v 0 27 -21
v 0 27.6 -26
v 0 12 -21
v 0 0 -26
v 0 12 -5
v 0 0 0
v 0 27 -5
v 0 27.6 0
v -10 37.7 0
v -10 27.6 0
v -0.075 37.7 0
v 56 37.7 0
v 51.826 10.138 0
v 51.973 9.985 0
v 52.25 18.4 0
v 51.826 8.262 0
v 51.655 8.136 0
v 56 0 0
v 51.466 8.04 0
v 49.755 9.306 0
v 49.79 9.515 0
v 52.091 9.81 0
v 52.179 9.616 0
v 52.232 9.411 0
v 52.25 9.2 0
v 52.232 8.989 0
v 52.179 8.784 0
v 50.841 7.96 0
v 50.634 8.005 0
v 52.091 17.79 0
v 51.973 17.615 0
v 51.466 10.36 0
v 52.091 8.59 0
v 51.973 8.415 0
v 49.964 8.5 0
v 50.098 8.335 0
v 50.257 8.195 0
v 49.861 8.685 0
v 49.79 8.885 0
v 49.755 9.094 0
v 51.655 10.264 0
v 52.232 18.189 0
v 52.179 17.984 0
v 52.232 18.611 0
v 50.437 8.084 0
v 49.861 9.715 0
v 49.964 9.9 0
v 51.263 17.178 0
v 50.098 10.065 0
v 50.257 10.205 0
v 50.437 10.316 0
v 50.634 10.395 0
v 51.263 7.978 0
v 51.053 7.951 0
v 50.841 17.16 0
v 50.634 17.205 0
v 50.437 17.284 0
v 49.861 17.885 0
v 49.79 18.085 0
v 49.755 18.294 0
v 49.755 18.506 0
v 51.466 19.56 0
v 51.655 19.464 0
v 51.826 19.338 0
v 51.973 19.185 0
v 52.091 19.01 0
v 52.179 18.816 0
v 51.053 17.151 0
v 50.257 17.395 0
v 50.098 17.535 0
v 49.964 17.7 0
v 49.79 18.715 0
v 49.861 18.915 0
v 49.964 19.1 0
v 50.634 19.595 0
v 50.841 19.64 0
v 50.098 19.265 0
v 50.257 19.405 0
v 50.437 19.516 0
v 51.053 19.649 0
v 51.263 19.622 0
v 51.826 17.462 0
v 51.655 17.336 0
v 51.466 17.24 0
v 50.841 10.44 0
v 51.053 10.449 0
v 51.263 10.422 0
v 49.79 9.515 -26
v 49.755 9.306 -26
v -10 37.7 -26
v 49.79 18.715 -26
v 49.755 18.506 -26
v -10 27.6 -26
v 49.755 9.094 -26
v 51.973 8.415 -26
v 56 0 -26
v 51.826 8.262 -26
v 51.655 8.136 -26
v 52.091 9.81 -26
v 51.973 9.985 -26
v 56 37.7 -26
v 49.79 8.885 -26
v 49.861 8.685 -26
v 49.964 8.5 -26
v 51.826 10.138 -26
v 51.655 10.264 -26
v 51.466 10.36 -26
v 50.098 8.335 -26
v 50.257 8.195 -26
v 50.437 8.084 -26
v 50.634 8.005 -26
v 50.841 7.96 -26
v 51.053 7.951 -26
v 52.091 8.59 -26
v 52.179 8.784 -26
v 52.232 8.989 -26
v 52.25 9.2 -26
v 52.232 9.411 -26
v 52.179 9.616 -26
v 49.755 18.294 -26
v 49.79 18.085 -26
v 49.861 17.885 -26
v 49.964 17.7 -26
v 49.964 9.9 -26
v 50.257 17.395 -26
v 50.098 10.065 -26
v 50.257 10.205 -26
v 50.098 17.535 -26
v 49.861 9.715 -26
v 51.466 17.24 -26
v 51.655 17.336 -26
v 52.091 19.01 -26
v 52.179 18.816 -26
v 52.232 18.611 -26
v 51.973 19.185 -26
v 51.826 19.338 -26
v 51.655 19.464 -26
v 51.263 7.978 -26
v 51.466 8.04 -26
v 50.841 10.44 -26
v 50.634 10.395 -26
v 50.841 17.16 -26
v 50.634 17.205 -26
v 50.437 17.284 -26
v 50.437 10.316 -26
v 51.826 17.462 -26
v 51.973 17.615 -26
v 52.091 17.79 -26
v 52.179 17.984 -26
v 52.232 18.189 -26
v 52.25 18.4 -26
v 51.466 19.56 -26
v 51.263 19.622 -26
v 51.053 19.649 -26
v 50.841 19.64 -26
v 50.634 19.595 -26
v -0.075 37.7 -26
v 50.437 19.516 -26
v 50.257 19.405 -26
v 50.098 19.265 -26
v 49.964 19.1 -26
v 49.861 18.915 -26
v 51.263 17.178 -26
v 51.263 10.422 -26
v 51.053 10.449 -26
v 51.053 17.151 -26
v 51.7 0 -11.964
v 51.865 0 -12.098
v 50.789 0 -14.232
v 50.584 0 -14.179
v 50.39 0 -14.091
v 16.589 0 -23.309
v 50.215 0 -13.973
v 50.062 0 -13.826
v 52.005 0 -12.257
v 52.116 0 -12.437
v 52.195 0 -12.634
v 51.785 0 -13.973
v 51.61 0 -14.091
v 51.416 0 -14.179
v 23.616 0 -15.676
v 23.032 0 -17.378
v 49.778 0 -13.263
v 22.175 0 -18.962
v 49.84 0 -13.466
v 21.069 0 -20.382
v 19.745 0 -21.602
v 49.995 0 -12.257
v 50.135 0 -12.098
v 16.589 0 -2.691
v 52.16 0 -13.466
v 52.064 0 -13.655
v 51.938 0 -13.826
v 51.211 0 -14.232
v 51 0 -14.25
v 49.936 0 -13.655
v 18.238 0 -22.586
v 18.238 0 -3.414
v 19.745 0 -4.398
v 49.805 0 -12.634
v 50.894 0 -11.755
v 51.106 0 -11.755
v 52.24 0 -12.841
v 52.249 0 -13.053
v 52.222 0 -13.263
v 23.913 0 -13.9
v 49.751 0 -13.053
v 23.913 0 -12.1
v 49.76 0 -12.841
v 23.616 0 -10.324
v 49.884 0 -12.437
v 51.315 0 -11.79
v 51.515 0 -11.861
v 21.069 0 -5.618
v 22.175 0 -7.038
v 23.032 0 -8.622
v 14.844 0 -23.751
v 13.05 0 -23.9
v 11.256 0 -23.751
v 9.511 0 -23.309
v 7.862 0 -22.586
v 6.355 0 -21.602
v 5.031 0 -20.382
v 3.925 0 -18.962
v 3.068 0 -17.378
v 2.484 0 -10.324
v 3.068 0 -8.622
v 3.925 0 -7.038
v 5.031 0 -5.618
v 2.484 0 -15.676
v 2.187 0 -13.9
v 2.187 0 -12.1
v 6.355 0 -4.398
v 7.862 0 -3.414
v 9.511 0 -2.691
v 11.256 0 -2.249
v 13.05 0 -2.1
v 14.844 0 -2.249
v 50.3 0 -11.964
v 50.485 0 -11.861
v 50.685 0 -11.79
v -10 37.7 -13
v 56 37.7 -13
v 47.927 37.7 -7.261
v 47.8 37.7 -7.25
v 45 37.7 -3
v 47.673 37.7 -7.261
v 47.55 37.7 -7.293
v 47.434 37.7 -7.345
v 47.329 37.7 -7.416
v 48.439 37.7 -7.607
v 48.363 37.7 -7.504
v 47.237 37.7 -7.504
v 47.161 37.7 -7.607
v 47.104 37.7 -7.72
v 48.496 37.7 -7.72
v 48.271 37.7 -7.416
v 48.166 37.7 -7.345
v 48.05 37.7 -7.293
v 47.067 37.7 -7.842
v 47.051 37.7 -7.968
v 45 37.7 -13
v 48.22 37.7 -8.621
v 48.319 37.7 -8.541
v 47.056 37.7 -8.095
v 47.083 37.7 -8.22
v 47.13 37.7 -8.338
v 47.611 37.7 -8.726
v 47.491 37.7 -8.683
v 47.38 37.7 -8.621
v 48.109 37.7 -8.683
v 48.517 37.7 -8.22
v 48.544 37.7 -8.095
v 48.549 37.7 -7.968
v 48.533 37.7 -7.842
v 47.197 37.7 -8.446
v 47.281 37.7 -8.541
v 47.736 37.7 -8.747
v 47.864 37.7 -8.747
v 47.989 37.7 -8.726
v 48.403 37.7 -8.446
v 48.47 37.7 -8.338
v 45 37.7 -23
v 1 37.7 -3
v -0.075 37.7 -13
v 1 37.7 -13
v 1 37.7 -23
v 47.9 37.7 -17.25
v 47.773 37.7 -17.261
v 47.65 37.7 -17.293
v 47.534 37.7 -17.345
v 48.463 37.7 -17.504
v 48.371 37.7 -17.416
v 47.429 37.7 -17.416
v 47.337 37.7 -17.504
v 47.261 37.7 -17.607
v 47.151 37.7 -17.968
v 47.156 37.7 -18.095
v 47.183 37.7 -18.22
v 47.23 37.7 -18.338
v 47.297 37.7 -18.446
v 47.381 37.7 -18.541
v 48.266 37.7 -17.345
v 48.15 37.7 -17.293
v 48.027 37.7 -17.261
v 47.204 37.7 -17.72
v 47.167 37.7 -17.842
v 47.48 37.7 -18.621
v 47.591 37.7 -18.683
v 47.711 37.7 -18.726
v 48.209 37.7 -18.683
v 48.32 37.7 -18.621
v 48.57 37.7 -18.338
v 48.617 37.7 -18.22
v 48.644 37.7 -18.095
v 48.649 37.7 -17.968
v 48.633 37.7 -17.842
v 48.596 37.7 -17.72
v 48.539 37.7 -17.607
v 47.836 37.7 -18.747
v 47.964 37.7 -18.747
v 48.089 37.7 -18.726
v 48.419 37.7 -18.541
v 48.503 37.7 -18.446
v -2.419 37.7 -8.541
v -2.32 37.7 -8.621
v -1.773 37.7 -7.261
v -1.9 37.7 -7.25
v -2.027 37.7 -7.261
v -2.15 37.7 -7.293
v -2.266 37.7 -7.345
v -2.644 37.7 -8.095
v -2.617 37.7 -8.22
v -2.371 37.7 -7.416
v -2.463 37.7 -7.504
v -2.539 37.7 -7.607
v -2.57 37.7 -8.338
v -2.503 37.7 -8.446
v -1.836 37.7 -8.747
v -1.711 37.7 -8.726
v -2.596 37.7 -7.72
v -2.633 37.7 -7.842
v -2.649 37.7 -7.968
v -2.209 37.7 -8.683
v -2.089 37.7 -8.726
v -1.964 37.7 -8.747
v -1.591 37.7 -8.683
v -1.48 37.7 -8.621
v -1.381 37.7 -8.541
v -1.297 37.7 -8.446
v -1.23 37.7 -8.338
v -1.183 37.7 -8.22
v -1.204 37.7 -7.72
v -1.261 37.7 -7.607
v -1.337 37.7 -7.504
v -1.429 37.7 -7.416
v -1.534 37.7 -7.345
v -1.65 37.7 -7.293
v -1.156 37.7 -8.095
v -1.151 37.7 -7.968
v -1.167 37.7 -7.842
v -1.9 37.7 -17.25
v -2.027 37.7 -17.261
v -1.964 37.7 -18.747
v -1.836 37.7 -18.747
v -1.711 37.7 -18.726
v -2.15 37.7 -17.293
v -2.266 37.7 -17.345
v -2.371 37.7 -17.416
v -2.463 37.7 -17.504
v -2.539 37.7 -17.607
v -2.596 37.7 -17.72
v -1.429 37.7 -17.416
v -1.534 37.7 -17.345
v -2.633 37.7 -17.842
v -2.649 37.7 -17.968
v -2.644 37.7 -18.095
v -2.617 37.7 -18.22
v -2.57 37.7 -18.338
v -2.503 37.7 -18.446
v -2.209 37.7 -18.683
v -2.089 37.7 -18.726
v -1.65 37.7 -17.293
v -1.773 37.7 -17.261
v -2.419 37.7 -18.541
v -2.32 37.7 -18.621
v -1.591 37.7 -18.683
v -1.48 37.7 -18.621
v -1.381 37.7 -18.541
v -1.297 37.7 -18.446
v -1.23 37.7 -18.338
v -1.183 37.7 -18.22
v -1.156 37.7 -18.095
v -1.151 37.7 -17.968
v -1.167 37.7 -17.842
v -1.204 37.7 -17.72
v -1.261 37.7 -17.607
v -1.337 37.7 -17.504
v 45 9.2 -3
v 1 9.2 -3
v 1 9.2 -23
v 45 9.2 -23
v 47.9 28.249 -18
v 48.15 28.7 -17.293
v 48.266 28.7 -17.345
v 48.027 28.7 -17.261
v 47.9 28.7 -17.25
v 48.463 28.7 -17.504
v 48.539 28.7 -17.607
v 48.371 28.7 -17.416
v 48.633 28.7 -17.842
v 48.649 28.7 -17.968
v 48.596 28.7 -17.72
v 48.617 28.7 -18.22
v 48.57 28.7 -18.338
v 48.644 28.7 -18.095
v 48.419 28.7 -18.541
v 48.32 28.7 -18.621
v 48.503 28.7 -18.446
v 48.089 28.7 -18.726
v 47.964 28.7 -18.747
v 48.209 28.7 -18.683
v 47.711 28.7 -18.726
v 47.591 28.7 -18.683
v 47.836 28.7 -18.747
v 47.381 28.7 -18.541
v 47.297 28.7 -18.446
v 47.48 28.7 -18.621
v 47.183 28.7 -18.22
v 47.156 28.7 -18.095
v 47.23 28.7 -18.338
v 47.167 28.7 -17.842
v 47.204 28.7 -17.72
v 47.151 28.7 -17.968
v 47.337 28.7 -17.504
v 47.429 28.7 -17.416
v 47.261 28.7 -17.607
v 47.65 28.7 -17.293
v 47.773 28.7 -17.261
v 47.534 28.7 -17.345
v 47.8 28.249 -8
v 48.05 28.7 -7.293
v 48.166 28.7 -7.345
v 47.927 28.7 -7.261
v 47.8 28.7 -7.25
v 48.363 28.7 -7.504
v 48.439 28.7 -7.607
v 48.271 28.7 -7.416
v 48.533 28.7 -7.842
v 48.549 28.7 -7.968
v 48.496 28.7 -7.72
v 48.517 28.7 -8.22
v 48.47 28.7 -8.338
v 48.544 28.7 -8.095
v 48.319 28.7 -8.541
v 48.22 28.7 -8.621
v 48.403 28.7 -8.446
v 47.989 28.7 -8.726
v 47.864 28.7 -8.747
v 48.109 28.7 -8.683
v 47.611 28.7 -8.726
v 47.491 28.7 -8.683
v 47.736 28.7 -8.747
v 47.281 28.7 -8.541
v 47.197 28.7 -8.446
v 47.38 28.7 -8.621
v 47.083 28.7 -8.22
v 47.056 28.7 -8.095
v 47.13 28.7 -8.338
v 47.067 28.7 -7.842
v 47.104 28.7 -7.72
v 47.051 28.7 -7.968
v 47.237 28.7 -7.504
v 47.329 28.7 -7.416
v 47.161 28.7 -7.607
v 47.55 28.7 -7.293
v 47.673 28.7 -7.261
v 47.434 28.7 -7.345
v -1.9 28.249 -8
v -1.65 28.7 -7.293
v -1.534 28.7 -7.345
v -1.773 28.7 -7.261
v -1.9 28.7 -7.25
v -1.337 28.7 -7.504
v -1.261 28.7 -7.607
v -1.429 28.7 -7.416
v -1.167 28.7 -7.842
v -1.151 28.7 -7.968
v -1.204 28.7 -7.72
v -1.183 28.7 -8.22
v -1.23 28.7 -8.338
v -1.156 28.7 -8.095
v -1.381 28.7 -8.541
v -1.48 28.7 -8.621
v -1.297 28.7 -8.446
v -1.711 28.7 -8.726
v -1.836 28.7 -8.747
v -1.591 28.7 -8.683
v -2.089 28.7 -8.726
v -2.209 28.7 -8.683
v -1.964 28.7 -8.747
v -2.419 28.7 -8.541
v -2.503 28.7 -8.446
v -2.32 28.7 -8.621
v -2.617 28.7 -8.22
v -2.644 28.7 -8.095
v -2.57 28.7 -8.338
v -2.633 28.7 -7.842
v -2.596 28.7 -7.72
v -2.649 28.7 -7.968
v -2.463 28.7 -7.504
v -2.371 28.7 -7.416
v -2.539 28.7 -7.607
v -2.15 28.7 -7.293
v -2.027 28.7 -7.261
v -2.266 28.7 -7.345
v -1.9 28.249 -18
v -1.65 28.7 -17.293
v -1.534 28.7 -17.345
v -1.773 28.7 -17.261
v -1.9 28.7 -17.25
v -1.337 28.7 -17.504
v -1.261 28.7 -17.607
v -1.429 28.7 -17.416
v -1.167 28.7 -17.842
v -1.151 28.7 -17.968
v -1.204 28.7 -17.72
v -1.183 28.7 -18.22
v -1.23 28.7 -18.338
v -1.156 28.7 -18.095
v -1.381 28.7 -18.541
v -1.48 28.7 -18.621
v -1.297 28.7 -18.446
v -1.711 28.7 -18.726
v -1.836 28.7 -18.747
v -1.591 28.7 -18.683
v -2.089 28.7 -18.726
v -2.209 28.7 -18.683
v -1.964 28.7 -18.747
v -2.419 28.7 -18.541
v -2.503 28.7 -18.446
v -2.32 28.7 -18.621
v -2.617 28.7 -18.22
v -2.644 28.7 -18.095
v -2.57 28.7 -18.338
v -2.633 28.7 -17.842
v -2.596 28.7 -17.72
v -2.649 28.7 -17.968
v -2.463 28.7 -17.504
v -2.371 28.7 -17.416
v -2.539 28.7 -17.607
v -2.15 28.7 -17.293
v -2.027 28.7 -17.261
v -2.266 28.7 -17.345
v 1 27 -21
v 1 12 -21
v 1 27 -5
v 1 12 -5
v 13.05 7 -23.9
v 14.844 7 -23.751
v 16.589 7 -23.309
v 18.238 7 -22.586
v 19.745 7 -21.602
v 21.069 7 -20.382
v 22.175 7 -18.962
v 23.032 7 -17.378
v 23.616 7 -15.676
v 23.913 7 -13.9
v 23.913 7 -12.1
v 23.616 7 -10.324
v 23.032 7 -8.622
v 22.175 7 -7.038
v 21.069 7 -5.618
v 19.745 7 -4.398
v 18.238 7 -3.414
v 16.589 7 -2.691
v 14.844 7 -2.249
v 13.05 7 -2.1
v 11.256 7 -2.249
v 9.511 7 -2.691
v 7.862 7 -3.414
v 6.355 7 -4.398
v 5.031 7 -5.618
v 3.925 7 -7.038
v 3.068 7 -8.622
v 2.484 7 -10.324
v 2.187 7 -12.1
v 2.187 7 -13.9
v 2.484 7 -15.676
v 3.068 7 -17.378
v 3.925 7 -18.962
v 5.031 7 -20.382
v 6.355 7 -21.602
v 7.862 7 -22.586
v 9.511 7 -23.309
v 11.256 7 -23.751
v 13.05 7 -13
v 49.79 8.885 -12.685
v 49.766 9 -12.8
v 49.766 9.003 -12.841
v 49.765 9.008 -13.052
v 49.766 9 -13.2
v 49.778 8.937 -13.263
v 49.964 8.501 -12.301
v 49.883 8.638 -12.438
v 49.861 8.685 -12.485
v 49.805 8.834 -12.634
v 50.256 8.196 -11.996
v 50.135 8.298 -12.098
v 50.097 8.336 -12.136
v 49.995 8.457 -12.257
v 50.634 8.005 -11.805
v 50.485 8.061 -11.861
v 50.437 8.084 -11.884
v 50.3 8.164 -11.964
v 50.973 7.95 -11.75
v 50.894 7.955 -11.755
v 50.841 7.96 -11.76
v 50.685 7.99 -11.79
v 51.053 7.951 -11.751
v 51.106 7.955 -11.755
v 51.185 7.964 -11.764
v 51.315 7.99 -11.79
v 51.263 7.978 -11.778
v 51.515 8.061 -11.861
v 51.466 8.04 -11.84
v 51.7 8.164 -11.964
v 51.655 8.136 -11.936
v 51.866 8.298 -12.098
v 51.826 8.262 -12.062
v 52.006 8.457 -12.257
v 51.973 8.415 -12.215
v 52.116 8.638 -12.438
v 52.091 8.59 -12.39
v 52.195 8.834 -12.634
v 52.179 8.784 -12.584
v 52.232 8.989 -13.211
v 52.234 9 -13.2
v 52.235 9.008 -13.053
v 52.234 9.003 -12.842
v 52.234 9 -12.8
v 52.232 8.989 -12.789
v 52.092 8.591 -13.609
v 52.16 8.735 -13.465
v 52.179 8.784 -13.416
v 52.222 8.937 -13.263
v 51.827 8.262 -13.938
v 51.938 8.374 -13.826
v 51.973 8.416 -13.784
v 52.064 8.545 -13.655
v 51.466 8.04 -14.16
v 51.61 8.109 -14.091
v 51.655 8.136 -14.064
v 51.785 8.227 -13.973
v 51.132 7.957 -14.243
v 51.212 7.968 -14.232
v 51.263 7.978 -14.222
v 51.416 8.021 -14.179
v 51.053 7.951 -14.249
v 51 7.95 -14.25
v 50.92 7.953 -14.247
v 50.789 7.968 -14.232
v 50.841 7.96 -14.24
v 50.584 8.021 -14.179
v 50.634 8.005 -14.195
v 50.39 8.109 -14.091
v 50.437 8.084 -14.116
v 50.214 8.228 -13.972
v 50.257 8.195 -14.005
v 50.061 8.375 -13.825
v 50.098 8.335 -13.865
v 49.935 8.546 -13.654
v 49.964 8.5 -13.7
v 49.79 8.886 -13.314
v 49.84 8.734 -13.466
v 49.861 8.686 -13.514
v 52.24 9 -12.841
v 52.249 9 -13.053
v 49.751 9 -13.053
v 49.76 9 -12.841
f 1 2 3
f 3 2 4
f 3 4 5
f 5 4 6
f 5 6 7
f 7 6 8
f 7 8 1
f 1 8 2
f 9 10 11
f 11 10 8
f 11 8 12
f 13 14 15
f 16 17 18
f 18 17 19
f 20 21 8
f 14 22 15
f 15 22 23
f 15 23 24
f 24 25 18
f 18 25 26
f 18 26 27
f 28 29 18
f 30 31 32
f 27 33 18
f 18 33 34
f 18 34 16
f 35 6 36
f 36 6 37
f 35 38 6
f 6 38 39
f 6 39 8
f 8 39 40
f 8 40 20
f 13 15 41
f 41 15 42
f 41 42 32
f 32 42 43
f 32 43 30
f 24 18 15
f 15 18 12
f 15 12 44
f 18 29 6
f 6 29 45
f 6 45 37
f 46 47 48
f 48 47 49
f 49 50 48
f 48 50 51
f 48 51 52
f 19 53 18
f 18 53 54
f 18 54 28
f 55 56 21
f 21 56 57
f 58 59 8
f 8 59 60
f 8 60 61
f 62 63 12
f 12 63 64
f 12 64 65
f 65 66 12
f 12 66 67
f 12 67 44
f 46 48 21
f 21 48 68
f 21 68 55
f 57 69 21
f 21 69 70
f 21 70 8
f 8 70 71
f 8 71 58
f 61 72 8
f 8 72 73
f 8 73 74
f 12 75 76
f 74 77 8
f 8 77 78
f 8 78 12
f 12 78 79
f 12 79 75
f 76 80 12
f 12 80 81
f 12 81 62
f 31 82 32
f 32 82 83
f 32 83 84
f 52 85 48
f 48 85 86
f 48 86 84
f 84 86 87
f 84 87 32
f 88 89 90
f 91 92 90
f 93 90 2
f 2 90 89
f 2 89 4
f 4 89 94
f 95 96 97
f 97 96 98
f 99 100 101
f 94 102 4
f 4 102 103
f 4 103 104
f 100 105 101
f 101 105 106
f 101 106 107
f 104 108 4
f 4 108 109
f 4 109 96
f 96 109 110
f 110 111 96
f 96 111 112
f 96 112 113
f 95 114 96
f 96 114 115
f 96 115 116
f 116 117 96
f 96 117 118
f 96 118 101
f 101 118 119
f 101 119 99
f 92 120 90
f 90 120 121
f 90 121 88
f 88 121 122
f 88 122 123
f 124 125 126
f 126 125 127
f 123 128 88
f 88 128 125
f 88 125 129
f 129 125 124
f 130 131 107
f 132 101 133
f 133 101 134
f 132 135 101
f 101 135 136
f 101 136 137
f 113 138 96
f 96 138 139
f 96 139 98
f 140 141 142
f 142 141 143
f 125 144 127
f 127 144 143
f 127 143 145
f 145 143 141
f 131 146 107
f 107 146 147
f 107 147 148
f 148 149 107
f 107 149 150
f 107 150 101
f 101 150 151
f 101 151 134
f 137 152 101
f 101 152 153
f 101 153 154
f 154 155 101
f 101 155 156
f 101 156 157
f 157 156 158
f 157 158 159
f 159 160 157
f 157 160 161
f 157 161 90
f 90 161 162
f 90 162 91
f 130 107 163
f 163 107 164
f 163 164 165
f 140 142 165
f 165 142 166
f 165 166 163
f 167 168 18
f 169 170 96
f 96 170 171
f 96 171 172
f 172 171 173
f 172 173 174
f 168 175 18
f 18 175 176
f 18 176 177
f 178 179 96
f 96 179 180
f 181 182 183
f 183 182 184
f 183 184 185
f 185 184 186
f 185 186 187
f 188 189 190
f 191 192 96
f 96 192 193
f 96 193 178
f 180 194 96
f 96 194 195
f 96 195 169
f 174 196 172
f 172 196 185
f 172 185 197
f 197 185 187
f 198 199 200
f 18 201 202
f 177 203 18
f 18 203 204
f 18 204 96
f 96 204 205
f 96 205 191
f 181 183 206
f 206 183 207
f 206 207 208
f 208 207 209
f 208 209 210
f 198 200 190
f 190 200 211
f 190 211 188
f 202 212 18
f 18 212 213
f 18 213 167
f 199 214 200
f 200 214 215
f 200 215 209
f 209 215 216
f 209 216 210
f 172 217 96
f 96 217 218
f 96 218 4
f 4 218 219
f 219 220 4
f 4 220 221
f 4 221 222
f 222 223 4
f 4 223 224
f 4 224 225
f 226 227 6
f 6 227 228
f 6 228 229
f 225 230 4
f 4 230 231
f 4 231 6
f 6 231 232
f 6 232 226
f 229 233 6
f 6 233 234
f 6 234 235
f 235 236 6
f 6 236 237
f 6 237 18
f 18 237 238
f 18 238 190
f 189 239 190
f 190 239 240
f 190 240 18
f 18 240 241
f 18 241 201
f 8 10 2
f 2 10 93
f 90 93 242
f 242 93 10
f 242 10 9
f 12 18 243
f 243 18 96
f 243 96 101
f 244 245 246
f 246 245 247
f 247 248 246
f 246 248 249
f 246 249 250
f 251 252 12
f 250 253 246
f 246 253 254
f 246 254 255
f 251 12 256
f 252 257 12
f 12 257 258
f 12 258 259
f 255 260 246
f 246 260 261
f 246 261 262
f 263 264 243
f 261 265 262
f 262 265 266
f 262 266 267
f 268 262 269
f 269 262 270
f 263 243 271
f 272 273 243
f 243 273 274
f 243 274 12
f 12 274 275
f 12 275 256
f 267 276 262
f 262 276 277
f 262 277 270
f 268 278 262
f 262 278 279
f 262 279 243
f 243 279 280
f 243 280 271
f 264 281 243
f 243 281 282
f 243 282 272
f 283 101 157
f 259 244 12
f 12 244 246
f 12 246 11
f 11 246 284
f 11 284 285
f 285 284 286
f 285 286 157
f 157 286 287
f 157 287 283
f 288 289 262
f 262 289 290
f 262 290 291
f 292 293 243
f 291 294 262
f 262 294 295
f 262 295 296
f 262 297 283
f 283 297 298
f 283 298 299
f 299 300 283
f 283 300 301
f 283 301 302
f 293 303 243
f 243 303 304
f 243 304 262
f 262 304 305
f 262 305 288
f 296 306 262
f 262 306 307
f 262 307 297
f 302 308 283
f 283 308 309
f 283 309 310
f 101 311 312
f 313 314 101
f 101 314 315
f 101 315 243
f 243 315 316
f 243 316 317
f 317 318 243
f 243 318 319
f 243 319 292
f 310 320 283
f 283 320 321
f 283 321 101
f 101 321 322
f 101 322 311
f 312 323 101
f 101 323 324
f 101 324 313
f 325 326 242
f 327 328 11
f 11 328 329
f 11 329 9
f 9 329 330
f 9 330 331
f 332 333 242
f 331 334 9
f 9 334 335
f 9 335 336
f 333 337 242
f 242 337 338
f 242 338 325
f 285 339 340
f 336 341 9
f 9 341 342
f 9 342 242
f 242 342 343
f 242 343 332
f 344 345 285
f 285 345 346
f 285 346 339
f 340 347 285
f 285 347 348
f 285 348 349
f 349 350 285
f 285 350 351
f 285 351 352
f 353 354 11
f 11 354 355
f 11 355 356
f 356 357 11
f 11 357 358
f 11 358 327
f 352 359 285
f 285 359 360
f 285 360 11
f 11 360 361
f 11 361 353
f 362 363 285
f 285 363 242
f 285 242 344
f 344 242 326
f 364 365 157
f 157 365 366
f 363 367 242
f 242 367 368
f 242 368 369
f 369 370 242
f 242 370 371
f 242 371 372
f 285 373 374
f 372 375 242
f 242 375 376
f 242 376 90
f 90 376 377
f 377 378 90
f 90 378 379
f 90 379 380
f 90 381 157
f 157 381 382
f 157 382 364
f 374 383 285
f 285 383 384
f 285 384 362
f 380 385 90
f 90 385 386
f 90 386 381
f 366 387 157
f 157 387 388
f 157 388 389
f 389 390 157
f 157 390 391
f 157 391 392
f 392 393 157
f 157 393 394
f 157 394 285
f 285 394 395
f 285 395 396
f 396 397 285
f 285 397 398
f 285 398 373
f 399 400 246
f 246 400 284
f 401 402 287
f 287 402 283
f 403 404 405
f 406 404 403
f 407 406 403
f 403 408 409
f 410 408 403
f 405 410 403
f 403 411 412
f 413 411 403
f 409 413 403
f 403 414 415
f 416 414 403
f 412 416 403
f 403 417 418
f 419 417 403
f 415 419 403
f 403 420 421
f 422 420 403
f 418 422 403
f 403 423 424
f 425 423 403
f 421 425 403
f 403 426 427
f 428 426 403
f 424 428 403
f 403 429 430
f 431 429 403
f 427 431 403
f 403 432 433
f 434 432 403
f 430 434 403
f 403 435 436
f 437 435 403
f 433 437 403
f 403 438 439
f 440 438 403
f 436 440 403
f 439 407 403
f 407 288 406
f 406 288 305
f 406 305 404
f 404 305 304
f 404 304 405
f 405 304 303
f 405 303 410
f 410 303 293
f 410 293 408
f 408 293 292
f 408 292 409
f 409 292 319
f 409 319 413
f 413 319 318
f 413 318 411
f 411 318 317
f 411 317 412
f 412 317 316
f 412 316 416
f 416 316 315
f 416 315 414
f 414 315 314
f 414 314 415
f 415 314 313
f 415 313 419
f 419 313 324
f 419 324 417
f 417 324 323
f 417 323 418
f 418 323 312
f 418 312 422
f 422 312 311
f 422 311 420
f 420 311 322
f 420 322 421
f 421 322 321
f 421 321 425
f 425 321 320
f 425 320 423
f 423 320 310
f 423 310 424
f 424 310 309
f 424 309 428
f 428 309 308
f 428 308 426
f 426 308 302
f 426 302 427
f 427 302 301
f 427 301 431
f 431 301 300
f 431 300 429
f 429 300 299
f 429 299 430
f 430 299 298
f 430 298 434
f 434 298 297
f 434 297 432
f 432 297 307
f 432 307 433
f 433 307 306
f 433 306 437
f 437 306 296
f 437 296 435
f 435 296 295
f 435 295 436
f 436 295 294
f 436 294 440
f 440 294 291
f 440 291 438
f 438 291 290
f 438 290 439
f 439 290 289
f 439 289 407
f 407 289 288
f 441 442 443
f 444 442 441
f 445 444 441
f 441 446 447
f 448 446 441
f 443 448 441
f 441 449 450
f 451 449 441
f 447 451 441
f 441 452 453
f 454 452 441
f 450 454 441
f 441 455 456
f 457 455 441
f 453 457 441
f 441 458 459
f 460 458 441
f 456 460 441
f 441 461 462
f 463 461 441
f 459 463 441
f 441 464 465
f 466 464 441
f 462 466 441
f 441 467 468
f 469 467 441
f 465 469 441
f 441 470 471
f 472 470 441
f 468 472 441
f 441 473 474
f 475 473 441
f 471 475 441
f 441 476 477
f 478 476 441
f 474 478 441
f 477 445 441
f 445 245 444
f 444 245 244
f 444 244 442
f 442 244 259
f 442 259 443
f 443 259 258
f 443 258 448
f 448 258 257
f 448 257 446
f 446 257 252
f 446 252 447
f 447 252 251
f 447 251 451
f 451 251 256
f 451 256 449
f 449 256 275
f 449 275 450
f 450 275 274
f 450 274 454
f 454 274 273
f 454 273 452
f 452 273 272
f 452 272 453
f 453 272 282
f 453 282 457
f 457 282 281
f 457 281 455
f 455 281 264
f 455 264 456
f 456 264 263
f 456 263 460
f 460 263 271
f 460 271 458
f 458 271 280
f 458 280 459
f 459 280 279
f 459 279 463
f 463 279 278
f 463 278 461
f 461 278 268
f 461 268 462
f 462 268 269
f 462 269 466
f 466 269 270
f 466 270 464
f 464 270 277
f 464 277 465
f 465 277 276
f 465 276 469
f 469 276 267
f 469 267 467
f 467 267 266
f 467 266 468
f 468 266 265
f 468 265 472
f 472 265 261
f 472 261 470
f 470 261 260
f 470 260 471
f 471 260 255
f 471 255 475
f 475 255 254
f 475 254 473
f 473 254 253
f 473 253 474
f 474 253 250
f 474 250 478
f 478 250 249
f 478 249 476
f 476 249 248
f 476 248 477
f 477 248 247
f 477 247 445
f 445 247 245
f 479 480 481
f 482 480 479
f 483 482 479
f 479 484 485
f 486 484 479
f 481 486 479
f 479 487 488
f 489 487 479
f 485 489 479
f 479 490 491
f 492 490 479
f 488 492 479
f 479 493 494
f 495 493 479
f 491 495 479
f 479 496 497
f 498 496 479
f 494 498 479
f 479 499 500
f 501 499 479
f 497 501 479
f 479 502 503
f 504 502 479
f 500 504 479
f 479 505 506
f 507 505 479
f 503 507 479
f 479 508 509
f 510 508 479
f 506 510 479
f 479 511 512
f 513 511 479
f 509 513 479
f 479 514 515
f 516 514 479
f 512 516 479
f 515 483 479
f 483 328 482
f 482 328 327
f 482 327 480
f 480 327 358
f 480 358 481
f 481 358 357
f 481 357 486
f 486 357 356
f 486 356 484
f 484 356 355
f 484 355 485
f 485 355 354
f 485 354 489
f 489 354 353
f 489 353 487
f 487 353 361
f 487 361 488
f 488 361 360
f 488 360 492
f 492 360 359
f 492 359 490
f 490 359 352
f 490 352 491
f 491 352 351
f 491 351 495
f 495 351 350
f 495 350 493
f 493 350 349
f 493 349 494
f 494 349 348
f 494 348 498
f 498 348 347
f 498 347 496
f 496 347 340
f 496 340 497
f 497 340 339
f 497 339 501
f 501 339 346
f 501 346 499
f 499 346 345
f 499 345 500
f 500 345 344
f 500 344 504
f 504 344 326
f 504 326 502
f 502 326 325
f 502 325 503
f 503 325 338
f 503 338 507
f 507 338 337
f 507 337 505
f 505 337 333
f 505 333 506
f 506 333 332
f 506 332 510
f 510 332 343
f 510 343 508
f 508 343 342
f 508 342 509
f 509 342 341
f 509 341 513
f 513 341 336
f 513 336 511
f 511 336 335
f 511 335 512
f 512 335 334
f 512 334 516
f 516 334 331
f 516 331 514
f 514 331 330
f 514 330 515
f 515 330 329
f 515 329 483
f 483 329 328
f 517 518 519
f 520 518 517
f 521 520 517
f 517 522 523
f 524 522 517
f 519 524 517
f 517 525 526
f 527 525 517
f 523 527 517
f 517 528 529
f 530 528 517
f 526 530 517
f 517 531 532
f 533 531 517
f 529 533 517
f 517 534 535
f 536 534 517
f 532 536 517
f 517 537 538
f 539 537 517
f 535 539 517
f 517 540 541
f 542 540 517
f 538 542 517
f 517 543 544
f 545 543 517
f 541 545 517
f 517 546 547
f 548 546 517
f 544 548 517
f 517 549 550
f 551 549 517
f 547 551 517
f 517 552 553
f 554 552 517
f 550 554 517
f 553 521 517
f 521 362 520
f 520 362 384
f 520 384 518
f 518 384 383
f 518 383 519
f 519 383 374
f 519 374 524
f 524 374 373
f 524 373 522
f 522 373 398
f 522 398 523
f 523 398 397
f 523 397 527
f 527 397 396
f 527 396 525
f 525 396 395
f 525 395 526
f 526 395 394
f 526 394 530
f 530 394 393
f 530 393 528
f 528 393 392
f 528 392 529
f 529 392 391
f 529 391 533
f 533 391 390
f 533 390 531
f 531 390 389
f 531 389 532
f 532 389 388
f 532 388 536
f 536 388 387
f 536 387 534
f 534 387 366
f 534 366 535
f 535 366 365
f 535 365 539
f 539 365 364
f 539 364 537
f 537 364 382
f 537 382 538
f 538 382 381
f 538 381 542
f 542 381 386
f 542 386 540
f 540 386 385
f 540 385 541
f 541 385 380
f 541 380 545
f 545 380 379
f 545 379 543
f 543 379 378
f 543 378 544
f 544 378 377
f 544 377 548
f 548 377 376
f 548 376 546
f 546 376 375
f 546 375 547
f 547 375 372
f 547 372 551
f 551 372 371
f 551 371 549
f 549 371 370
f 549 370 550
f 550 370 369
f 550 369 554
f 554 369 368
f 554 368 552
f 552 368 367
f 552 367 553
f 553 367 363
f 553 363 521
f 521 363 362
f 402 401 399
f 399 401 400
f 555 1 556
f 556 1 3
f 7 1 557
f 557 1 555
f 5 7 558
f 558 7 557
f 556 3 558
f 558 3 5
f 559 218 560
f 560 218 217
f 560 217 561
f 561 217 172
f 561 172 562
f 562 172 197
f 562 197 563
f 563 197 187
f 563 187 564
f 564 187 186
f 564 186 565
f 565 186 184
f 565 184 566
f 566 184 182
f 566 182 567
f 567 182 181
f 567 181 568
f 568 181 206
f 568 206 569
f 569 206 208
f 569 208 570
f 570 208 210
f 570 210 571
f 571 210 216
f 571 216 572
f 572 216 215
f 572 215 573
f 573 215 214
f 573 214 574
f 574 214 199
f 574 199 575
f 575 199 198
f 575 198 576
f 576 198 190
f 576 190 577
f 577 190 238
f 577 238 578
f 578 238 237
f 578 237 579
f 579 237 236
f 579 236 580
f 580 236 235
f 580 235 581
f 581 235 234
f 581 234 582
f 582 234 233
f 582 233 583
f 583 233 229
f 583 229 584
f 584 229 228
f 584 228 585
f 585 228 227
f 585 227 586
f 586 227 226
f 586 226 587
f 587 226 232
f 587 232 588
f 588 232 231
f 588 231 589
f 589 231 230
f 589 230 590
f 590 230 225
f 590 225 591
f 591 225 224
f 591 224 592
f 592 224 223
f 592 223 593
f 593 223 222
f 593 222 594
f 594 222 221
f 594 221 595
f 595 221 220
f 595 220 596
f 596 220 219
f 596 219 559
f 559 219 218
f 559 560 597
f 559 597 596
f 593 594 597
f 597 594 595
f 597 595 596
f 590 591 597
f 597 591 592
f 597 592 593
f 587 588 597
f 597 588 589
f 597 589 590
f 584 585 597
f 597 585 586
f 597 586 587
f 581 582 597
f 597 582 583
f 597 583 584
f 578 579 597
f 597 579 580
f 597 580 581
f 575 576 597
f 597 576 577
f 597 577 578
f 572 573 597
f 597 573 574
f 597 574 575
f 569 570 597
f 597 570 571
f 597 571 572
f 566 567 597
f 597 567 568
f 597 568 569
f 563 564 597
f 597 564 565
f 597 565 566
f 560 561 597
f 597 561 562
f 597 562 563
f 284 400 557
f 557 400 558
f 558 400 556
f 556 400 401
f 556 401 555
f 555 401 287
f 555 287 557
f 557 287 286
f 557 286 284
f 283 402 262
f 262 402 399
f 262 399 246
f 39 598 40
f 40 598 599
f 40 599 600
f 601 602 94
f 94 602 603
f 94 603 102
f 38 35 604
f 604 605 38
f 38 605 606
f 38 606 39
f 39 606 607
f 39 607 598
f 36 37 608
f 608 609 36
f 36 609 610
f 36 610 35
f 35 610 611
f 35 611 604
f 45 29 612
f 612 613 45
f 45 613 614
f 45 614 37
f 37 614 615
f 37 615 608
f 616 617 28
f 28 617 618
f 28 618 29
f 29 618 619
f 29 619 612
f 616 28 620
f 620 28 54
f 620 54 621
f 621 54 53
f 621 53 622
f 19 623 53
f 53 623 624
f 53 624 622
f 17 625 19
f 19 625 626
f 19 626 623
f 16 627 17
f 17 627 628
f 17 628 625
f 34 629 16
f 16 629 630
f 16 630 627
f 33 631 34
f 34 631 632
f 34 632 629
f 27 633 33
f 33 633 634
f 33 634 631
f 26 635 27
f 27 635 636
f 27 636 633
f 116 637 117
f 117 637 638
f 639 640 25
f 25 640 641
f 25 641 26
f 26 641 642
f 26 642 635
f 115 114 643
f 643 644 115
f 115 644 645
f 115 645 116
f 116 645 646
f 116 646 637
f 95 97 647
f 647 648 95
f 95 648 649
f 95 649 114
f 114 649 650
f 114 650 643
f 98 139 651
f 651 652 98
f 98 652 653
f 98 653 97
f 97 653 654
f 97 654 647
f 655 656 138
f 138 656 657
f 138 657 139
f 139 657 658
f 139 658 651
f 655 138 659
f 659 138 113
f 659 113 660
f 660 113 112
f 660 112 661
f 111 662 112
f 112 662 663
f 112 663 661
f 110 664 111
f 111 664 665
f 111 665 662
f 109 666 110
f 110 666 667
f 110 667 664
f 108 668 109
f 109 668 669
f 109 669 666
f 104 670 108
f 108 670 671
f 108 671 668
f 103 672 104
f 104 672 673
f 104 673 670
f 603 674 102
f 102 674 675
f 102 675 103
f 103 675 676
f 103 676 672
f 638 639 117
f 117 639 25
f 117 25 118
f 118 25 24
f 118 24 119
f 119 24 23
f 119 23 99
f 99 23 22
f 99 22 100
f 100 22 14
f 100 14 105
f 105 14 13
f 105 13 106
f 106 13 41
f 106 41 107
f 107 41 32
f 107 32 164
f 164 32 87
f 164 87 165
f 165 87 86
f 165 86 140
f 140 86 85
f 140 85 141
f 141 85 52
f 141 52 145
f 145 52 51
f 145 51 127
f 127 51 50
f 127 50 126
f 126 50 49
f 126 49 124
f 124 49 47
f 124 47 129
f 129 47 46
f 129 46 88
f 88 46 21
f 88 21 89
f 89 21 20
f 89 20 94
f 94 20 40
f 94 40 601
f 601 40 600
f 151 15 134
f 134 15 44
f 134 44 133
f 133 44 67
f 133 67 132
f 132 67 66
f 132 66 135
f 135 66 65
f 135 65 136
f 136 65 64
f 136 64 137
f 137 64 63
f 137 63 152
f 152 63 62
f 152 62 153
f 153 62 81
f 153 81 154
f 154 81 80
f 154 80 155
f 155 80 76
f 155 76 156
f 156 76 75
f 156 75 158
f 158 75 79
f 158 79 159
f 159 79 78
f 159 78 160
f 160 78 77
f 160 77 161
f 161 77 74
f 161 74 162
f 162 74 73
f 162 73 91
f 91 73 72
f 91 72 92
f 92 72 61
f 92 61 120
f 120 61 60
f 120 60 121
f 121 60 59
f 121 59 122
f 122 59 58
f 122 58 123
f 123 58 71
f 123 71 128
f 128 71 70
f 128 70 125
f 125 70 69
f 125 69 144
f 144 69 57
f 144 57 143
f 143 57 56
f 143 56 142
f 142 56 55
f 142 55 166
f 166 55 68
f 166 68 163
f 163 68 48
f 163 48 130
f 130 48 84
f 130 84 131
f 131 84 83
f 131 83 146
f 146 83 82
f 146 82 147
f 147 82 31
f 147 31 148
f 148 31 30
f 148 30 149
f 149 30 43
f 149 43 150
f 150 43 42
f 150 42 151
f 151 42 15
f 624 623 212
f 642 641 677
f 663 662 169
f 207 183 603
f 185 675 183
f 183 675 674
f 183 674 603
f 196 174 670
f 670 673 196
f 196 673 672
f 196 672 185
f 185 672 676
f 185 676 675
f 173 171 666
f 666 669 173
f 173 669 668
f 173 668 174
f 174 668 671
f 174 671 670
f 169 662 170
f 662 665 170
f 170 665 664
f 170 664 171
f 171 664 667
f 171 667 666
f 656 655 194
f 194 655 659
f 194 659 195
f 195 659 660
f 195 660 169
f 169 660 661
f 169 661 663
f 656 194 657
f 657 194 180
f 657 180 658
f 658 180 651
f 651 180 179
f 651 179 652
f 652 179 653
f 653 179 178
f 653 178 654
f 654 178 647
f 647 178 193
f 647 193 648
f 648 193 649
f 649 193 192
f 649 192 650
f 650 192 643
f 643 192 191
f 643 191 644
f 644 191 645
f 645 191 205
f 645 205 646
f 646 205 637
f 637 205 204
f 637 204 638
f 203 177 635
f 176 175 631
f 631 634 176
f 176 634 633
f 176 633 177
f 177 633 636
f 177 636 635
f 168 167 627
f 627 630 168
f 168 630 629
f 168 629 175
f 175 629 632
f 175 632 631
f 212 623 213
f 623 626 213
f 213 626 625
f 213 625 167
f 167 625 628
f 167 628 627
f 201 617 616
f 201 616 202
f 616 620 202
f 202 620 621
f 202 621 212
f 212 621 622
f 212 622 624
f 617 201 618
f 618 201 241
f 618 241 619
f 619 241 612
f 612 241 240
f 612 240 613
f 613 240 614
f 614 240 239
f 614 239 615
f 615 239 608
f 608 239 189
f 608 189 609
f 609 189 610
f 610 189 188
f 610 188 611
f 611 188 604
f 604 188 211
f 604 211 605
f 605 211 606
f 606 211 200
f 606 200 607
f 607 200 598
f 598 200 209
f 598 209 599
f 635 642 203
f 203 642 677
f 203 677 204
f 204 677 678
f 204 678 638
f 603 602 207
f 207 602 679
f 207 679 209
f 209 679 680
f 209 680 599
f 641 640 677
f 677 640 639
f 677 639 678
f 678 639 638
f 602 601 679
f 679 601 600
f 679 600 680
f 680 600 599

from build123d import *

# Parameters (mm, degrees)
SKETCH1_W                 = 46
SKETCH1_H                 = 26
BOSS_EXTRUDE1_DEPTH       = 27.6
SKETCH2_W                 = 66
SKETCH2_H                 = 26
BOSS_EXTRUDE2_DEPTH       = 10.1
SKETCH3_W                 = 40
SKETCH3_H                 = 20
CUT_EXTRUDE2_DEPTH        = 25.5
F_1_5MM_DOWEL_HOLE2_D     = 1.5
F_1_5MM_DOWEL_HOLE2_DEPTH = 9
F_1_5MM_DOWEL_HOLE2_TIP   = 0.450645464
SKETCH8_W                 = 40
SKETCH8_H                 = 20
CUT_EXTRUDE6_DEPTH        = 3
SKETCH7_W                 = 16
SKETCH7_H                 = 15
CUT_EXTRUDE8_DEPTH        = 3
SKETCH9_R                 = 10.9
CUT_EXTRUDE9_DEPTH        = 7
SKETCH10_W                = 44
SKETCH10_H                = 20
CUT_EXTRUDE10_DEPTH       = 28.5
SKETCH11_W                = 26
SKETCH11_H                = 27.6
BOSS_EXTRUDE3_DEPTH       = 10
F_2_5MM_DOWEL_HOLE1_D     = 2.5
F_2_5MM_DOWEL_HOLE1_DEPTH = 26
F_2_5MM_DOWEL_HOLE1_TIP   = 0.751075774
F_2_5MM_DOWEL_HOLE2_D     = 2.5
F_2_5MM_DOWEL_HOLE2_DEPTH = 9
F_2_5MM_DOWEL_HOLE2_TIP   = 0.751075774


with BuildPart() as part:
    # Sketch1 → Boss-Extrude1 (new body)
    with BuildSketch(Plane(origin=(0, 0, 0), x_dir=(1, 0, 0), z_dir=(0, 1, 0))):
        with Locations((23, 13)):
            Rectangle(SKETCH1_W, SKETCH1_H)
    extrude(amount=BOSS_EXTRUDE1_DEPTH)

    # Sketch2 → Boss-Extrude2 (add)
    with BuildSketch(Plane(origin=(0, 27.6, 0), x_dir=(1, 0, 0), z_dir=(0, 1, 0))):
        with Locations((23, 13)):
            Rectangle(SKETCH2_W, SKETCH2_H)
    extrude(amount=BOSS_EXTRUDE2_DEPTH)

    # Sketch3 → Cut-Extrude2 (cut)
    with BuildSketch(Plane(origin=(0, 37.7, 0), x_dir=(1, 0, 0), z_dir=(0, 1, 0))):
        with Locations((23, 13)):
            Rectangle(SKETCH3_W, SKETCH3_H)
    extrude(amount=-CUT_EXTRUDE2_DEPTH, mode=Mode.SUBTRACT)

    # Ø1.5mm Dowel Hole2
    with Locations(Plane(origin=(-1.9, 37.7, -18), x_dir=(0, 0, 1), z_dir=(0, 1, 0))):
        with Locations((0, 0), (10, 0), (10, 49.7), (0, 49.8)):
            Hole(F_1_5MM_DOWEL_HOLE2_D / 2, depth=F_1_5MM_DOWEL_HOLE2_DEPTH)
            with Locations((0, 0, -(F_1_5MM_DOWEL_HOLE2_DEPTH + F_1_5MM_DOWEL_HOLE2_TIP / 2))):  # 118° drill point
                Cone(0, F_1_5MM_DOWEL_HOLE2_D / 2, F_1_5MM_DOWEL_HOLE2_TIP, mode=Mode.SUBTRACT)

    # Sketch8 → Cut-Extrude6 (cut)
    with BuildSketch(Plane(origin=(0, 12.2, 0), x_dir=(1, 0, 0), z_dir=(0, 1, 0))):
        with Locations((23, 13)):
            Rectangle(SKETCH8_W, SKETCH8_H)
    extrude(amount=-CUT_EXTRUDE6_DEPTH, mode=Mode.SUBTRACT)

    # Sketch7 → Cut-Extrude8 (cut)
    with BuildSketch(Plane.ZY):
        with Locations((-13, 19.5)):
            Rectangle(SKETCH7_W, SKETCH7_H)
    extrude(amount=-CUT_EXTRUDE8_DEPTH, mode=Mode.SUBTRACT)

    # Sketch9 → Cut-Extrude9 (cut)
    with BuildSketch(Plane(origin=(0, 0, 0), x_dir=(-1, 0, 0), z_dir=(0, -1, 0))):
        with Locations(Location((-13.05, 13, 0), (0, 0, 90))):
            Circle(SKETCH9_R)
    extrude(amount=-CUT_EXTRUDE9_DEPTH, mode=Mode.SUBTRACT)

    # Sketch10 → Cut-Extrude10 (cut)
    with BuildSketch(Plane(origin=(0, 37.7, 0), x_dir=(1, 0, 0), z_dir=(0, 1, 0))):
        with Locations((23, 13)):
            Rectangle(SKETCH10_W, SKETCH10_H)
    extrude(amount=-CUT_EXTRUDE10_DEPTH, mode=Mode.SUBTRACT)

    # Sketch11 → Boss-Extrude3 (add)
    with BuildSketch(Plane(origin=(46, 0, 0), x_dir=(0, 0, -1), z_dir=(1, 0, 0))):
        with Locations((13, 13.8)):
            Rectangle(SKETCH11_W, SKETCH11_H)
    extrude(amount=BOSS_EXTRUDE3_DEPTH)

    # Ø2.5mm Dowel Hole1
    with Locations(Plane(origin=(51, 18.4, 0), x_dir=(1, 0, 0), z_dir=(0, 0, 1))):
        with Locations((0, 0), (0, -9.2)):
            Hole(F_2_5MM_DOWEL_HOLE1_D / 2, depth=F_2_5MM_DOWEL_HOLE1_DEPTH)
            with Locations((0, 0, -(F_2_5MM_DOWEL_HOLE1_DEPTH + F_2_5MM_DOWEL_HOLE1_TIP / 2))):  # 118° drill point
                Cone(0, F_2_5MM_DOWEL_HOLE1_D / 2, F_2_5MM_DOWEL_HOLE1_TIP, mode=Mode.SUBTRACT)

    # Ø2.5mm Dowel Hole2
    with Locations(Plane.XZ):
        with Locations((51, -13)):
            Hole(F_2_5MM_DOWEL_HOLE2_D / 2, depth=F_2_5MM_DOWEL_HOLE2_DEPTH)
            with Locations((0, 0, -(F_2_5MM_DOWEL_HOLE2_DEPTH + F_2_5MM_DOWEL_HOLE2_TIP / 2))):  # 118° drill point
                Cone(0, F_2_5MM_DOWEL_HOLE2_D / 2, F_2_5MM_DOWEL_HOLE2_TIP, mode=Mode.SUBTRACT)


solid = part.part
